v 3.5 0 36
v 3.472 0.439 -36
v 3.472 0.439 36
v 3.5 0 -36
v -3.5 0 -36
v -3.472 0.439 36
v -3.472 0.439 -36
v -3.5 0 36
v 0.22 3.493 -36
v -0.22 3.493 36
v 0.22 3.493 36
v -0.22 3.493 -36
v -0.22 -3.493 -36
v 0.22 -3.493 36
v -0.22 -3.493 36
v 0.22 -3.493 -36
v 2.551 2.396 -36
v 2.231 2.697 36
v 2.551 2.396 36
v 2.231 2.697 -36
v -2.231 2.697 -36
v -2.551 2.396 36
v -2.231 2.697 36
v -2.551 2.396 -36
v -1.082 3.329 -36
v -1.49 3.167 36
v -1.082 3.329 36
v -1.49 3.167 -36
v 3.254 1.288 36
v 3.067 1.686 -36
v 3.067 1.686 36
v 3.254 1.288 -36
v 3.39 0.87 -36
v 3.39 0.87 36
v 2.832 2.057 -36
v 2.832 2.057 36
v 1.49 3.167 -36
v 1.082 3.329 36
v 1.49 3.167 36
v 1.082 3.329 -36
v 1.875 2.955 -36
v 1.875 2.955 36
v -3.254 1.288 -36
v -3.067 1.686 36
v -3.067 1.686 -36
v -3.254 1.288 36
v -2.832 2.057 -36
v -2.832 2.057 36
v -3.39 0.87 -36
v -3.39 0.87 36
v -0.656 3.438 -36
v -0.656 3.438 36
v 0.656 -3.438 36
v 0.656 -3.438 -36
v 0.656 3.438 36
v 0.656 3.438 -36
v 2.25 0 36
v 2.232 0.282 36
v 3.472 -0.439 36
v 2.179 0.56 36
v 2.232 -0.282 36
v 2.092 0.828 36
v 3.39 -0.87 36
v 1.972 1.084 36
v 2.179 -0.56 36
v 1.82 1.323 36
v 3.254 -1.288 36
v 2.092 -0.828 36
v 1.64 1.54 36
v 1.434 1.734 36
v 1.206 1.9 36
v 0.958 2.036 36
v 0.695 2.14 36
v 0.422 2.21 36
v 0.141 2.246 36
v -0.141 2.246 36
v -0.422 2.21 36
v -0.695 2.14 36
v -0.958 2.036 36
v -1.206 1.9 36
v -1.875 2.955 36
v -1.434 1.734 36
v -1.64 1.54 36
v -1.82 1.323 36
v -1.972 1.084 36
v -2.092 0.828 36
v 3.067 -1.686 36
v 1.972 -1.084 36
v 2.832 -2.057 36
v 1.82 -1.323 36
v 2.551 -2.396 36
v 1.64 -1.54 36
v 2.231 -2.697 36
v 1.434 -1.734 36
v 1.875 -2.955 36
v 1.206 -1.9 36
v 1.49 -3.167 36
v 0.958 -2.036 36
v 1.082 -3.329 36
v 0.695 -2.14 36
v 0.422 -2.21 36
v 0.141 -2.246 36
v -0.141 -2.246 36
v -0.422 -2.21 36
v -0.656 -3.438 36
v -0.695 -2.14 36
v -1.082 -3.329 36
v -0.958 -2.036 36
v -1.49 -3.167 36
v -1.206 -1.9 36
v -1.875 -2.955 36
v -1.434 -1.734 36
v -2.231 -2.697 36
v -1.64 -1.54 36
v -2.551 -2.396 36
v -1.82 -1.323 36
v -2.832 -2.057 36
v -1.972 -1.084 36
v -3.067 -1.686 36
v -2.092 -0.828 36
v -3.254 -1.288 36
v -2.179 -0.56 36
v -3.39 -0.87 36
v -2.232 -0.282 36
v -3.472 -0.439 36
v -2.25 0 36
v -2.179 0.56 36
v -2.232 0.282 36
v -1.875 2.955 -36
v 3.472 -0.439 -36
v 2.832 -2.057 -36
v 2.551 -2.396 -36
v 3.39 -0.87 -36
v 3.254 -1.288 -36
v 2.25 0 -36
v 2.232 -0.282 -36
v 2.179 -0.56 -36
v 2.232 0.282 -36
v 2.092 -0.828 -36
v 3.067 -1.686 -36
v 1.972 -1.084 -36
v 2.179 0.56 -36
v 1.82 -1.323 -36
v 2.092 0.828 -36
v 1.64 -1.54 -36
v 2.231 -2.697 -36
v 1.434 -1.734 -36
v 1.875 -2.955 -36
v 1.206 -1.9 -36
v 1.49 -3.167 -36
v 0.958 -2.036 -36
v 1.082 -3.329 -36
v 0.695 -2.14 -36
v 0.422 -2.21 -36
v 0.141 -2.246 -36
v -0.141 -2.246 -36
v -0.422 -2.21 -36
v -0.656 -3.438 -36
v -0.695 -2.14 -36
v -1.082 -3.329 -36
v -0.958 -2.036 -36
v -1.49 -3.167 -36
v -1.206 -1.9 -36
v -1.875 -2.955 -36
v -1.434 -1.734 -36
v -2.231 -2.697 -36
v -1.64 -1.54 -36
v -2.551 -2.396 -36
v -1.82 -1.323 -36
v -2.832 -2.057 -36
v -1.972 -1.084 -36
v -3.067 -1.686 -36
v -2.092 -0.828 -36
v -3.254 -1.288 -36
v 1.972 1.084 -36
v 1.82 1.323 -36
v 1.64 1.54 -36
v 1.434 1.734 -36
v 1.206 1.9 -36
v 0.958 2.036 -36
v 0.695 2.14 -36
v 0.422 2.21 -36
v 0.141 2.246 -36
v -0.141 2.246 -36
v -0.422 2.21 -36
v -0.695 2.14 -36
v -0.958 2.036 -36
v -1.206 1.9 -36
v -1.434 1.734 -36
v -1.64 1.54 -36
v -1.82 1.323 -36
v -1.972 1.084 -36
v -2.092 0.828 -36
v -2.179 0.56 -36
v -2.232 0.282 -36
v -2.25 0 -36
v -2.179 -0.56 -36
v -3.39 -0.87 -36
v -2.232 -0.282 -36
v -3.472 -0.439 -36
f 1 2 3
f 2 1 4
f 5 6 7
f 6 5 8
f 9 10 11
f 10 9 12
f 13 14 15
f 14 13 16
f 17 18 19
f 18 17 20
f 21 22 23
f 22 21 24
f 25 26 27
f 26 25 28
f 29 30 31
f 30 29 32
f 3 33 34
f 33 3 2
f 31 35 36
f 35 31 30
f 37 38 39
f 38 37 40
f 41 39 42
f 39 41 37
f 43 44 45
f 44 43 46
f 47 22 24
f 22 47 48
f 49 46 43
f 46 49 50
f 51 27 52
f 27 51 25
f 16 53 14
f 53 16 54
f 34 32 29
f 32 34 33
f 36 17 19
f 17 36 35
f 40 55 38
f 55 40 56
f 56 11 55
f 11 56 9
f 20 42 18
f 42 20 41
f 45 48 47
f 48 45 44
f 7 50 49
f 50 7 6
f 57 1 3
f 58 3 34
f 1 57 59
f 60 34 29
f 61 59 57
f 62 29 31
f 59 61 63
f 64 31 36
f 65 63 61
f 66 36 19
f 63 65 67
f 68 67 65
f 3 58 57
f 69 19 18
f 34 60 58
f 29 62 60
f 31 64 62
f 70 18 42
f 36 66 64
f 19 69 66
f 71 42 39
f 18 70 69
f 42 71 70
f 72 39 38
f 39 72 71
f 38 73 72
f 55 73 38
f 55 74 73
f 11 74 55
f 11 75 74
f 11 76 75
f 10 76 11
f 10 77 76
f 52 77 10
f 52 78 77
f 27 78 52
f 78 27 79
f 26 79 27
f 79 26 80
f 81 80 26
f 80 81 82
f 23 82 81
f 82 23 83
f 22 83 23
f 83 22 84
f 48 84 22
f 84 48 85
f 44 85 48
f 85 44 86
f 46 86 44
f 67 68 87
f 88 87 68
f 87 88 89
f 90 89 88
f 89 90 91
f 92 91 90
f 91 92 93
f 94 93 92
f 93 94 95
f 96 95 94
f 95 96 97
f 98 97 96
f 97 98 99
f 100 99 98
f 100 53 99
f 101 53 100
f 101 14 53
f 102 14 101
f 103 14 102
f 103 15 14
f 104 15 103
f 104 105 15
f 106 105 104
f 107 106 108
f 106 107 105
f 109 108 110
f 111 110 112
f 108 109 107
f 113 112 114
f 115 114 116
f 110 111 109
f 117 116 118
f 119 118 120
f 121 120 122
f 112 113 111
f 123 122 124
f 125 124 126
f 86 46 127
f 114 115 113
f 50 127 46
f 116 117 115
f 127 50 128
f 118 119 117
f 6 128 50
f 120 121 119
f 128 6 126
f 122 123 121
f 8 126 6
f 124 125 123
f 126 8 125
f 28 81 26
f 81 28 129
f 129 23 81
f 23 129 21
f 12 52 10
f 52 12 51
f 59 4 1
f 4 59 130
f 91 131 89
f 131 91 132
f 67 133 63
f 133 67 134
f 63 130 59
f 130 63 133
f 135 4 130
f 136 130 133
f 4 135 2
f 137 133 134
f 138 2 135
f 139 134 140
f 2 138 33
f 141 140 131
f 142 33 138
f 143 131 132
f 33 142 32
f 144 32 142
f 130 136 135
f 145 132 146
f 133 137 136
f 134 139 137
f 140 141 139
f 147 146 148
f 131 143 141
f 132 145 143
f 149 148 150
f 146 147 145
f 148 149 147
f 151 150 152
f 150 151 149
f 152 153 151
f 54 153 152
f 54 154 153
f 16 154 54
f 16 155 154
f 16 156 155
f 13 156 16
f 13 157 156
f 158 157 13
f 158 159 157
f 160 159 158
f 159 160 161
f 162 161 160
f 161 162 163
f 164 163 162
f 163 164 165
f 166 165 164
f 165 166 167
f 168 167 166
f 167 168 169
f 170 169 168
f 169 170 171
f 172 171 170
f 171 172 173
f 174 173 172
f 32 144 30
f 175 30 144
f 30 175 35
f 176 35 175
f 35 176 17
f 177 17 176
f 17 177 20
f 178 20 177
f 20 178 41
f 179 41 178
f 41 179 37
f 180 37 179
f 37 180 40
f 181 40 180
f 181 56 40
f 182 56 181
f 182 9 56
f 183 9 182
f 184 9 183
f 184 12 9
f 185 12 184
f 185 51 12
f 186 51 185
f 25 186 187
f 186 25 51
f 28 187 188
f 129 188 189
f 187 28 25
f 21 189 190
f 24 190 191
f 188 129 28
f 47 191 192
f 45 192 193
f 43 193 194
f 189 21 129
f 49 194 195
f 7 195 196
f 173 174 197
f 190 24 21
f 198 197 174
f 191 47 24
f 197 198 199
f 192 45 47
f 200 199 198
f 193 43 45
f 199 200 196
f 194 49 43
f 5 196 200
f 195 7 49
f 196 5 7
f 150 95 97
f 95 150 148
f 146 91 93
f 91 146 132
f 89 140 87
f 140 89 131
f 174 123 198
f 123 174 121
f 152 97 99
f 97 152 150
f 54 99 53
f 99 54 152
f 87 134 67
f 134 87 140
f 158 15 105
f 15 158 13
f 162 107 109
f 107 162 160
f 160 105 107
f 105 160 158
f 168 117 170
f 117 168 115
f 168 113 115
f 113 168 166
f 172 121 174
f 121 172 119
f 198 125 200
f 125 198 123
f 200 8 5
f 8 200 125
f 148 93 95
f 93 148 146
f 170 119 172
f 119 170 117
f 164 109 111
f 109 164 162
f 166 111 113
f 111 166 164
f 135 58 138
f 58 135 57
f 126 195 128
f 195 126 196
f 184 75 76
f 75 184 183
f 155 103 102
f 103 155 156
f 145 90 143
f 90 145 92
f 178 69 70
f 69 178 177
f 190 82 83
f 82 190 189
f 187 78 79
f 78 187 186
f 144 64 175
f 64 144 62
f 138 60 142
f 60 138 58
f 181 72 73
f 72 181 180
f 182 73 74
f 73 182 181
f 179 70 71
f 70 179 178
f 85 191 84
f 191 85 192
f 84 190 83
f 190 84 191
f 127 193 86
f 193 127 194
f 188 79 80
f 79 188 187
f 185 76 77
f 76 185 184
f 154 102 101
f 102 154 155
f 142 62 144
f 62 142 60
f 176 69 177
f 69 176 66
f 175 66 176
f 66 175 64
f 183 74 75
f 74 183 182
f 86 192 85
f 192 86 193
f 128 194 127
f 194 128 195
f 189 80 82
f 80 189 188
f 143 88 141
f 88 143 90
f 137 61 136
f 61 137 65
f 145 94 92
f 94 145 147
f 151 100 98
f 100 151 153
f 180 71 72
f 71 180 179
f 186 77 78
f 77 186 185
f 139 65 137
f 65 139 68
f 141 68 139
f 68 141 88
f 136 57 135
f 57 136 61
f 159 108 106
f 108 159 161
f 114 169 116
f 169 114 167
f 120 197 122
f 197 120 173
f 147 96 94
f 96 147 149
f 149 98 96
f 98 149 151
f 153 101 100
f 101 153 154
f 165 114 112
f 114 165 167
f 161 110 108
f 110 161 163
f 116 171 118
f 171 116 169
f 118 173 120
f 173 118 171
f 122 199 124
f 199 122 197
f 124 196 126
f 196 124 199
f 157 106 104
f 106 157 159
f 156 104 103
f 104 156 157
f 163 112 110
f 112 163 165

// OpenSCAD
$fn = 50;


difference() {
	union() {
		translate(v = [0, 0, -36.0000000000]) {
			cylinder(h = 72, r = 3.5000000000);
		}
	}
	union() {
		translate(v = [0, 0, -100.0000000000]) {
			cylinder(h = 200, r = 2.2500000000);
		}
	}
}
